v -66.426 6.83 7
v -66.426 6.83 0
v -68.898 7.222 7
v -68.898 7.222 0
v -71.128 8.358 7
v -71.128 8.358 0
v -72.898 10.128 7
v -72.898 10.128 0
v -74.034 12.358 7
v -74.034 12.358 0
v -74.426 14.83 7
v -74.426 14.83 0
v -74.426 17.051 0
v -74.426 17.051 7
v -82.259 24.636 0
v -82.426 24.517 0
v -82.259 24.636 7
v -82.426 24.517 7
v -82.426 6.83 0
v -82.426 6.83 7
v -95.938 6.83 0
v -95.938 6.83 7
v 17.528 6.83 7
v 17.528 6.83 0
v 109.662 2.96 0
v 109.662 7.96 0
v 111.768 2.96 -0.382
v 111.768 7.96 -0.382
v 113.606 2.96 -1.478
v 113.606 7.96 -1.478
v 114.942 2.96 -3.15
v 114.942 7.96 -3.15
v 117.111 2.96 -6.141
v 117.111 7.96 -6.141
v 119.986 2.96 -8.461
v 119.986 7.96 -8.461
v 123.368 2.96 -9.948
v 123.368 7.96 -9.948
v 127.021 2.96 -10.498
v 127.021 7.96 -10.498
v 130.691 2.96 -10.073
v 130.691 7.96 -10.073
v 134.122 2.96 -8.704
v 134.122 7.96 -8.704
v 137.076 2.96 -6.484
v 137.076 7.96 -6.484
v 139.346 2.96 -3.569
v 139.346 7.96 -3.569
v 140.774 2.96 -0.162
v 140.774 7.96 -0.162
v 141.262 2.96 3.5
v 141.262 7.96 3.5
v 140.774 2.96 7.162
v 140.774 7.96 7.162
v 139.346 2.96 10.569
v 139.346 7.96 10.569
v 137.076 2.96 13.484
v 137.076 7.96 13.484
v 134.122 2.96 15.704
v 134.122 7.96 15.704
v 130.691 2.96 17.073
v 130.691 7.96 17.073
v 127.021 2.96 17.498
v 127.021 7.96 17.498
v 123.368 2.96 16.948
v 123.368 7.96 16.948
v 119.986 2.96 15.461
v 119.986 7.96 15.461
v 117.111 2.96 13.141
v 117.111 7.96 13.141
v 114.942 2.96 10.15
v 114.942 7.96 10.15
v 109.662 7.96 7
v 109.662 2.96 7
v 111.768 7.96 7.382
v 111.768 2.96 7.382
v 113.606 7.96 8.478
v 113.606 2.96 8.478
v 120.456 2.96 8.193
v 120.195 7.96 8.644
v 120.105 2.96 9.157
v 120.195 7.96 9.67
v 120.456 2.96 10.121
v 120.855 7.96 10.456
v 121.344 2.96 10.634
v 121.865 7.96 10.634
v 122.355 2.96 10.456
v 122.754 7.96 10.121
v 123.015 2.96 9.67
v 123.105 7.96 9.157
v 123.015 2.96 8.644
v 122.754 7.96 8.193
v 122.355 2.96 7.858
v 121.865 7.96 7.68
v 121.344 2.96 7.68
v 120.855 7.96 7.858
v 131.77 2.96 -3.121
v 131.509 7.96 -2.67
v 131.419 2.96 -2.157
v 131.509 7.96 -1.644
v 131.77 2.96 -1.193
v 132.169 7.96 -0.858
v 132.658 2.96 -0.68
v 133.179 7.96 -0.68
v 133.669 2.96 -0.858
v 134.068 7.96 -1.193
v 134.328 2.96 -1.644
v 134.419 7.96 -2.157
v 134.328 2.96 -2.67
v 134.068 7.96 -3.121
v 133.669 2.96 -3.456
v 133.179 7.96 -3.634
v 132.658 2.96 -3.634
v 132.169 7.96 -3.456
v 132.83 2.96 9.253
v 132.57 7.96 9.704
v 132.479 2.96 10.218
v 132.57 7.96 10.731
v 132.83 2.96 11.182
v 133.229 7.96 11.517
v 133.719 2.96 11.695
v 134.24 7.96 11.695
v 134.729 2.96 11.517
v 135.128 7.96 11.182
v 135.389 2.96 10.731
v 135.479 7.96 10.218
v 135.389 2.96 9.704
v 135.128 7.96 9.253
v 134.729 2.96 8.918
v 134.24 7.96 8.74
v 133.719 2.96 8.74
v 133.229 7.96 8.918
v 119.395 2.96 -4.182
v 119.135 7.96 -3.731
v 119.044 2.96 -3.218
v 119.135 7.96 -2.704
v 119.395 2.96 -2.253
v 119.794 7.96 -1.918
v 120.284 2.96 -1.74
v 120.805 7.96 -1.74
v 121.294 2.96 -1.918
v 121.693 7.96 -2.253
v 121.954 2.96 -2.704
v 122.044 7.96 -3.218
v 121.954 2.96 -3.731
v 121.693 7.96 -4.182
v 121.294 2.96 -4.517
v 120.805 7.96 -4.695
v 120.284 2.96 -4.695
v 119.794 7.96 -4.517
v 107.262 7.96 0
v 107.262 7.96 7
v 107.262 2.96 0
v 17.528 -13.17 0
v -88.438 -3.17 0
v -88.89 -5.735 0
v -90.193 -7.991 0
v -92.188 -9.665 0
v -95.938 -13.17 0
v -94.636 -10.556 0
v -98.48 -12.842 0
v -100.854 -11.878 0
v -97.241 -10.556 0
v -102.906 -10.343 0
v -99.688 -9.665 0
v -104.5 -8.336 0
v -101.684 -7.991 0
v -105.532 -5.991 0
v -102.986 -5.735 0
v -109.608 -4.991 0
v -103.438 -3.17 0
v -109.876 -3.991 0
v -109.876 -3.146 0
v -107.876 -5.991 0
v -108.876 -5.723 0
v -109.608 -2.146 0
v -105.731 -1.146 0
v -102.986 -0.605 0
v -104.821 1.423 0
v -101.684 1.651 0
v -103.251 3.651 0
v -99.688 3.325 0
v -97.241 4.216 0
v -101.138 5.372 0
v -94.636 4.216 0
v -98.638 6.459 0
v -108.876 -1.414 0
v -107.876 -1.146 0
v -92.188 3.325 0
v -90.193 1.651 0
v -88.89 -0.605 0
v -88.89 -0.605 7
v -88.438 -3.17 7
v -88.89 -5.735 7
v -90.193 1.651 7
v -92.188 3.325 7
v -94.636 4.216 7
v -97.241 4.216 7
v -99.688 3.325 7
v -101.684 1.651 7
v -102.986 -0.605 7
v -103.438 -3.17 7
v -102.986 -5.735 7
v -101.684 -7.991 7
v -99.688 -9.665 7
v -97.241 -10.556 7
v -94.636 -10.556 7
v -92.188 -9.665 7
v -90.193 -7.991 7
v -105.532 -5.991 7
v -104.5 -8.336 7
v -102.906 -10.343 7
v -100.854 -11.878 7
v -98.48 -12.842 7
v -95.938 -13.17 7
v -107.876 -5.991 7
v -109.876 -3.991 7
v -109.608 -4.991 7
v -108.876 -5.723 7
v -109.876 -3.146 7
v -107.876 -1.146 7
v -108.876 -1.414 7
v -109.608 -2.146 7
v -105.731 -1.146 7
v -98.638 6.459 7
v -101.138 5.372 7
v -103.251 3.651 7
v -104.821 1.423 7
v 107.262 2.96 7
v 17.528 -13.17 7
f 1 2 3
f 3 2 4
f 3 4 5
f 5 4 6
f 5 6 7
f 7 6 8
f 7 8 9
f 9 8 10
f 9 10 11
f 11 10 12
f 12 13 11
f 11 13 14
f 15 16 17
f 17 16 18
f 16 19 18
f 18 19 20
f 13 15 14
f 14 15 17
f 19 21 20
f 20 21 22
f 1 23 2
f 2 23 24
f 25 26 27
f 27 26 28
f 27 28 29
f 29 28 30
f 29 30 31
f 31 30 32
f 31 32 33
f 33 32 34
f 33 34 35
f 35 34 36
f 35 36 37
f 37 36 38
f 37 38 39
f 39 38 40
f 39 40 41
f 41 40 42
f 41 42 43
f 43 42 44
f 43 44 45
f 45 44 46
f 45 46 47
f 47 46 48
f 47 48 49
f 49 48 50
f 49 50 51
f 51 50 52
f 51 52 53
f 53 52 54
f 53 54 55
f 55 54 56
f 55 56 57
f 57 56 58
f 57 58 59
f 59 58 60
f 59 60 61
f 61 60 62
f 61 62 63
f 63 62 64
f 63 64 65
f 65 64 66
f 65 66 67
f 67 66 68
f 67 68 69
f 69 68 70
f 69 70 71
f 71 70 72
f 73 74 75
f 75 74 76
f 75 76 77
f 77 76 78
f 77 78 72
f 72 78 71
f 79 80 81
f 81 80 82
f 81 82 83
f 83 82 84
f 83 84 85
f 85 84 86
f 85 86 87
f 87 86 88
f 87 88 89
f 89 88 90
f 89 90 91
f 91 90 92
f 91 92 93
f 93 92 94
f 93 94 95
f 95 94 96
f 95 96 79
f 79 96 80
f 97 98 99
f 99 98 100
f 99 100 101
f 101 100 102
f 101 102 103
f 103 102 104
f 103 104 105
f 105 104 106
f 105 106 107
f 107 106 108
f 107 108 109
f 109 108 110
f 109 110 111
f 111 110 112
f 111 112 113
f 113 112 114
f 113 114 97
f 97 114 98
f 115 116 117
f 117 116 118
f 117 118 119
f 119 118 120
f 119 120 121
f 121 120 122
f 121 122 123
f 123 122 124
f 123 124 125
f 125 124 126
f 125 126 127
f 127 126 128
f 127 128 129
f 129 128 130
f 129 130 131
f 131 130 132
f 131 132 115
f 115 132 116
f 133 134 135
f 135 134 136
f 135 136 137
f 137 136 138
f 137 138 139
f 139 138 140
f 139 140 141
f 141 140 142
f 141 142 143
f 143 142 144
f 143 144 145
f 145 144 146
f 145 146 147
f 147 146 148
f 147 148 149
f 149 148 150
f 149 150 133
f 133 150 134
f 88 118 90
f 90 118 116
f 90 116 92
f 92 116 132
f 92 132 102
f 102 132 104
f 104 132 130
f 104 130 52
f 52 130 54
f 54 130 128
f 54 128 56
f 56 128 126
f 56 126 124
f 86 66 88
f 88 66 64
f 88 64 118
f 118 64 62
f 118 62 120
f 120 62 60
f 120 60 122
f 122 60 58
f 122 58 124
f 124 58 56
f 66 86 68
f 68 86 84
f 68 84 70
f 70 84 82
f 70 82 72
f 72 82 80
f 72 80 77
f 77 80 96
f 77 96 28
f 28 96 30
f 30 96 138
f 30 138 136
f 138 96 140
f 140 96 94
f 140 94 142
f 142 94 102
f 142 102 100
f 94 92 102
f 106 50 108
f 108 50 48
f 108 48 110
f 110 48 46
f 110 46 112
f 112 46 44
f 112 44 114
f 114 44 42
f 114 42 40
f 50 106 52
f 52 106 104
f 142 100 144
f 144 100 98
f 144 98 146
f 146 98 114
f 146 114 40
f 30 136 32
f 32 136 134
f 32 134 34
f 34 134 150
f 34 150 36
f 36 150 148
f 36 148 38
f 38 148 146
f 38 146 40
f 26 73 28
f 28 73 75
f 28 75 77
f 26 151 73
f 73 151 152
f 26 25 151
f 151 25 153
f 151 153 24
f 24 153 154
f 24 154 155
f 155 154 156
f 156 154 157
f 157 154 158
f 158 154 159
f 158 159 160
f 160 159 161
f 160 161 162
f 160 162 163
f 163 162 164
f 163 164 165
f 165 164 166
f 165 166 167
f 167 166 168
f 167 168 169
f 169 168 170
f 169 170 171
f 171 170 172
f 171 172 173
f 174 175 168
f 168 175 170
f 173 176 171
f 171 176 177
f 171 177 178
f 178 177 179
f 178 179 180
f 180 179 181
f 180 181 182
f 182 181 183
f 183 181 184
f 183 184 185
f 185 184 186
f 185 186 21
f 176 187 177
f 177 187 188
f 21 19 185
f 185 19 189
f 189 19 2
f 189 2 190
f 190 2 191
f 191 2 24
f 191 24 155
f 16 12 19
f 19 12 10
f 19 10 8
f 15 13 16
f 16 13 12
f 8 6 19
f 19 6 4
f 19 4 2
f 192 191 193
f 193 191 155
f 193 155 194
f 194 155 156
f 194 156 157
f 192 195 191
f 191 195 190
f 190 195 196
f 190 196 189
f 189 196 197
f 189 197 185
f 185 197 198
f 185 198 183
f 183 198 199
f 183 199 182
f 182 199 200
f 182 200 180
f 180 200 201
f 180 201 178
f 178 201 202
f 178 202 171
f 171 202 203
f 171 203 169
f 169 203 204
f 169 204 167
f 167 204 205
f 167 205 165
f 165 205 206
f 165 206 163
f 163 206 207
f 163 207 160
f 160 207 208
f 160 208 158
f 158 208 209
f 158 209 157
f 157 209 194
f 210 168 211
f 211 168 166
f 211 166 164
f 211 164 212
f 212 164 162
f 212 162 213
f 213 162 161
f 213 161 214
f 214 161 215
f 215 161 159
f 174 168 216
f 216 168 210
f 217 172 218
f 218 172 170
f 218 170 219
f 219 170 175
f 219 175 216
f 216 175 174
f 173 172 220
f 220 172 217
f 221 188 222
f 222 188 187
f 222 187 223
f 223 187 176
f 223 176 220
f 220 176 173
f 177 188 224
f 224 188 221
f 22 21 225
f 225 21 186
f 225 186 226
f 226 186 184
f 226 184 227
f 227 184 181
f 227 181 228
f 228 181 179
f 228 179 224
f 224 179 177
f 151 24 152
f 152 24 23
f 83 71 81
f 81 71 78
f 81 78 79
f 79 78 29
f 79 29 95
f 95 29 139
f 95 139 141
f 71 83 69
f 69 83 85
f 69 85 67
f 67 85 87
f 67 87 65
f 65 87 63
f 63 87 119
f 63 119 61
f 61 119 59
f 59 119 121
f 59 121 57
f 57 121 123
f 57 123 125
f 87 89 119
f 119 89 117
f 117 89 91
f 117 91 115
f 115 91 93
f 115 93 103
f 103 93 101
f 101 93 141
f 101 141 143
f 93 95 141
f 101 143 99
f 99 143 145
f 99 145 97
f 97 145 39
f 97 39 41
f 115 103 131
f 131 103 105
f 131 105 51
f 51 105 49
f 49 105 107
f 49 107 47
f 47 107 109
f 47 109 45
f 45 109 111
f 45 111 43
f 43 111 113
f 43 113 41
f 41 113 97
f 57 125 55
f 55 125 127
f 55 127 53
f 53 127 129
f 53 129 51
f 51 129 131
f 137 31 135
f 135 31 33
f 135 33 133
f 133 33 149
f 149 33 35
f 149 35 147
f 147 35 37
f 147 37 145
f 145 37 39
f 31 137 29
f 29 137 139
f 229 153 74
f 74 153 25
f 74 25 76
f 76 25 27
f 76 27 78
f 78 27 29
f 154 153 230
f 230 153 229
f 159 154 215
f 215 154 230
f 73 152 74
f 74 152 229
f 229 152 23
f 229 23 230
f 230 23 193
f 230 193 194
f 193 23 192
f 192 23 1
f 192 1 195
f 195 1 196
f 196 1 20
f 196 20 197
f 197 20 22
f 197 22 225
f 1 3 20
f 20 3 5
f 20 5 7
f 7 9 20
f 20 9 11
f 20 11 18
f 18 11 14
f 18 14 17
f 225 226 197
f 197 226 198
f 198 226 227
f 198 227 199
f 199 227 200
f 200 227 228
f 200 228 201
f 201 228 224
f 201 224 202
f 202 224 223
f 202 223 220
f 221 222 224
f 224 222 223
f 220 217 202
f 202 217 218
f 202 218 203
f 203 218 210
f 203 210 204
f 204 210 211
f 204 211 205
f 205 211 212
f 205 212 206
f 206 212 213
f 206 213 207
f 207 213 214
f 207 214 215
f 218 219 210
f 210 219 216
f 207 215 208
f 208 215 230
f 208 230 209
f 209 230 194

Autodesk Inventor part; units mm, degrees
ref_plane "YZ Plane" through (0, 0, 0) normal (1, 0, 0) x (0, 1, 0)
ref_plane "XZ Plane" through (0, 0, 0) normal (0, 1, 0) x (-1, 0, 0)
ref_plane "XY Plane" through (0, 0, 0) normal (0, 0, 1) x (1, 0, 0)
sketch "Sketch1" plane through (0, 0, 0) normal (0, 0, 1) x (1, 0, 0)
  line L0 (107.2618, 7.9599) -> (127.2618, 7.9599)
  line L1 (127.2618, 7.9599) -> (127.2618, 2.9599)
  line L2 (127.2618, 2.9599) -> (107.2618, 2.9599)
  line L3 (107.2618, 2.9599) -> (107.2618, 7.9599)
  circle A0 centre (-95.9382, -3.1699) radius 7.5
  circle A1 centre (-95.9382, -3.1699) radius 10
  line L4 (-95.9382, -13.1699) -> (-67.2988, -13.1699)
  line L5 (-67.2988, -13.1699) -> (17.5278, -13.1699)
  line L6 (107.2618, 2.9599) -> (17.5278, -13.1699)
  line L7 (-95.9382, 6.8301) -> (17.5278, 6.8301)
  line L8 (17.5278, 6.8301) -> (107.2618, 7.9599)
  line L9 (-105.7312, -1.1457) -> (-107.876, -1.1457)
  line L10 (-109.876, -3.1457) -> (-109.876, -3.9908)
  line L11 (-107.876, -5.9908) -> (-105.5321, -5.9908)
  arc A2 (-107.876, -1.1457) -> (-109.876, -3.1457) centre (-107.876, -3.1457) ccw
  arc A3 (-109.876, -3.9908) -> (-107.876, -5.9908) centre (-107.876, -3.9908) ccw
  point P0 (0, 0)
  point P1 (107.2618, 5.4599)
  point P2 (-109.876, -5.9908)
  point P3 (-109.876, -1.1457)
  dimension "d0" = 20
  dimension "d1" = 15
  dimension "d2" = 203.2
  dimension "d3" = 20
  dimension "d4" = 5
  dimension "d43" = 2
extrude "Extrusion1" add sketch "Sketch1" along normal blind 7
sketch "Sketch2" plane through (107.2618, 7.9599, 0) normal (0, 1, 0) x (1, 0, 0)
  line L0 (20, 0) -> (20, -7) projected
  circle A0 centre (20, -3.5) radius 14
  circle A1 centre (20, -3.5) radius 9.5 construction
  circle A2 centre (20, -3.5) radius 8 construction
  line L1 (20, -3.5) -> (29.8995, 6.3995) construction
  line L2 (20, -3.5) -> (34, -3.5) construction
  line L3 (20, -3.5) -> (10.1005, 6.3995) construction
  line L4 (20, -3.5) -> (10.1005, -13.3995) construction
  line L5 (20, -3.5) -> (29.8995, -13.3995) construction
  point P0 (-107.2618, 0)
  point P1 (13.2825, 3.2175)
  point P2 (26.7175, -10.2175)
  point P3 (25.6569, 2.1569)
  point P4 (14.3431, -9.1569)
  dimension "d7" = 28
  dimension "d8" = 19
  dimension "d9" = 16
  dimension "d10" = 45
extrude "Extrusion2" add sketch "Sketch2" against normal blind 5
hole "Hole1" at (120.5443, 7.9599, -3.2175) at (133.9793, 7.9599, 10.2175) at (132.9187, 7.9599, -2.1569) at (121.605, 7.9599, 9.1569) direction (0, -1, 0) diameter 3 end through all
fillet "Fillet1" radius 6 2 edges at (113.7064, 5.4599, 7) (113.7064, 5.4599, 0)
sketch "Sketch4" plane through (0, 0, 7) normal (0, 0, 1) x (1, 0, 0)
  line L0 (17.5278, 6.8301) -> (-95.9382, 6.8301) projected
  line L1 (-76.1299, 6.8301) -> (-50.7299, 6.8301) construction
  line L2 (-74.4257, 17.0506) -> (-74.4257, 6.8301)
  line L3 (-76.1299, 6.8301) -> (-74.4257, 6.8301)
  line L4 (-74.4257, 6.8301) -> (-82.4257, 6.8301)
  line L5 (-82.4257, 6.8301) -> (-82.4257, 24.5167)
  line L6 (-74.4257, 17.0506) -> (-82.2594, 24.6356)
  line L7 (-82.2594, 24.6356) -> (-82.4257, 24.5167)
  point P0 (0, 0)
  dimension "d42" = 8
extrude "Extrusion4" add sketch "Sketch4" against normal up to surface (7 mm away)
fillet "Fillet3" radius 8 1 edges at (-74.4257, 6.8301, 3.5)
properties part number "BOOM ARM" material "Aluminum 6061"
